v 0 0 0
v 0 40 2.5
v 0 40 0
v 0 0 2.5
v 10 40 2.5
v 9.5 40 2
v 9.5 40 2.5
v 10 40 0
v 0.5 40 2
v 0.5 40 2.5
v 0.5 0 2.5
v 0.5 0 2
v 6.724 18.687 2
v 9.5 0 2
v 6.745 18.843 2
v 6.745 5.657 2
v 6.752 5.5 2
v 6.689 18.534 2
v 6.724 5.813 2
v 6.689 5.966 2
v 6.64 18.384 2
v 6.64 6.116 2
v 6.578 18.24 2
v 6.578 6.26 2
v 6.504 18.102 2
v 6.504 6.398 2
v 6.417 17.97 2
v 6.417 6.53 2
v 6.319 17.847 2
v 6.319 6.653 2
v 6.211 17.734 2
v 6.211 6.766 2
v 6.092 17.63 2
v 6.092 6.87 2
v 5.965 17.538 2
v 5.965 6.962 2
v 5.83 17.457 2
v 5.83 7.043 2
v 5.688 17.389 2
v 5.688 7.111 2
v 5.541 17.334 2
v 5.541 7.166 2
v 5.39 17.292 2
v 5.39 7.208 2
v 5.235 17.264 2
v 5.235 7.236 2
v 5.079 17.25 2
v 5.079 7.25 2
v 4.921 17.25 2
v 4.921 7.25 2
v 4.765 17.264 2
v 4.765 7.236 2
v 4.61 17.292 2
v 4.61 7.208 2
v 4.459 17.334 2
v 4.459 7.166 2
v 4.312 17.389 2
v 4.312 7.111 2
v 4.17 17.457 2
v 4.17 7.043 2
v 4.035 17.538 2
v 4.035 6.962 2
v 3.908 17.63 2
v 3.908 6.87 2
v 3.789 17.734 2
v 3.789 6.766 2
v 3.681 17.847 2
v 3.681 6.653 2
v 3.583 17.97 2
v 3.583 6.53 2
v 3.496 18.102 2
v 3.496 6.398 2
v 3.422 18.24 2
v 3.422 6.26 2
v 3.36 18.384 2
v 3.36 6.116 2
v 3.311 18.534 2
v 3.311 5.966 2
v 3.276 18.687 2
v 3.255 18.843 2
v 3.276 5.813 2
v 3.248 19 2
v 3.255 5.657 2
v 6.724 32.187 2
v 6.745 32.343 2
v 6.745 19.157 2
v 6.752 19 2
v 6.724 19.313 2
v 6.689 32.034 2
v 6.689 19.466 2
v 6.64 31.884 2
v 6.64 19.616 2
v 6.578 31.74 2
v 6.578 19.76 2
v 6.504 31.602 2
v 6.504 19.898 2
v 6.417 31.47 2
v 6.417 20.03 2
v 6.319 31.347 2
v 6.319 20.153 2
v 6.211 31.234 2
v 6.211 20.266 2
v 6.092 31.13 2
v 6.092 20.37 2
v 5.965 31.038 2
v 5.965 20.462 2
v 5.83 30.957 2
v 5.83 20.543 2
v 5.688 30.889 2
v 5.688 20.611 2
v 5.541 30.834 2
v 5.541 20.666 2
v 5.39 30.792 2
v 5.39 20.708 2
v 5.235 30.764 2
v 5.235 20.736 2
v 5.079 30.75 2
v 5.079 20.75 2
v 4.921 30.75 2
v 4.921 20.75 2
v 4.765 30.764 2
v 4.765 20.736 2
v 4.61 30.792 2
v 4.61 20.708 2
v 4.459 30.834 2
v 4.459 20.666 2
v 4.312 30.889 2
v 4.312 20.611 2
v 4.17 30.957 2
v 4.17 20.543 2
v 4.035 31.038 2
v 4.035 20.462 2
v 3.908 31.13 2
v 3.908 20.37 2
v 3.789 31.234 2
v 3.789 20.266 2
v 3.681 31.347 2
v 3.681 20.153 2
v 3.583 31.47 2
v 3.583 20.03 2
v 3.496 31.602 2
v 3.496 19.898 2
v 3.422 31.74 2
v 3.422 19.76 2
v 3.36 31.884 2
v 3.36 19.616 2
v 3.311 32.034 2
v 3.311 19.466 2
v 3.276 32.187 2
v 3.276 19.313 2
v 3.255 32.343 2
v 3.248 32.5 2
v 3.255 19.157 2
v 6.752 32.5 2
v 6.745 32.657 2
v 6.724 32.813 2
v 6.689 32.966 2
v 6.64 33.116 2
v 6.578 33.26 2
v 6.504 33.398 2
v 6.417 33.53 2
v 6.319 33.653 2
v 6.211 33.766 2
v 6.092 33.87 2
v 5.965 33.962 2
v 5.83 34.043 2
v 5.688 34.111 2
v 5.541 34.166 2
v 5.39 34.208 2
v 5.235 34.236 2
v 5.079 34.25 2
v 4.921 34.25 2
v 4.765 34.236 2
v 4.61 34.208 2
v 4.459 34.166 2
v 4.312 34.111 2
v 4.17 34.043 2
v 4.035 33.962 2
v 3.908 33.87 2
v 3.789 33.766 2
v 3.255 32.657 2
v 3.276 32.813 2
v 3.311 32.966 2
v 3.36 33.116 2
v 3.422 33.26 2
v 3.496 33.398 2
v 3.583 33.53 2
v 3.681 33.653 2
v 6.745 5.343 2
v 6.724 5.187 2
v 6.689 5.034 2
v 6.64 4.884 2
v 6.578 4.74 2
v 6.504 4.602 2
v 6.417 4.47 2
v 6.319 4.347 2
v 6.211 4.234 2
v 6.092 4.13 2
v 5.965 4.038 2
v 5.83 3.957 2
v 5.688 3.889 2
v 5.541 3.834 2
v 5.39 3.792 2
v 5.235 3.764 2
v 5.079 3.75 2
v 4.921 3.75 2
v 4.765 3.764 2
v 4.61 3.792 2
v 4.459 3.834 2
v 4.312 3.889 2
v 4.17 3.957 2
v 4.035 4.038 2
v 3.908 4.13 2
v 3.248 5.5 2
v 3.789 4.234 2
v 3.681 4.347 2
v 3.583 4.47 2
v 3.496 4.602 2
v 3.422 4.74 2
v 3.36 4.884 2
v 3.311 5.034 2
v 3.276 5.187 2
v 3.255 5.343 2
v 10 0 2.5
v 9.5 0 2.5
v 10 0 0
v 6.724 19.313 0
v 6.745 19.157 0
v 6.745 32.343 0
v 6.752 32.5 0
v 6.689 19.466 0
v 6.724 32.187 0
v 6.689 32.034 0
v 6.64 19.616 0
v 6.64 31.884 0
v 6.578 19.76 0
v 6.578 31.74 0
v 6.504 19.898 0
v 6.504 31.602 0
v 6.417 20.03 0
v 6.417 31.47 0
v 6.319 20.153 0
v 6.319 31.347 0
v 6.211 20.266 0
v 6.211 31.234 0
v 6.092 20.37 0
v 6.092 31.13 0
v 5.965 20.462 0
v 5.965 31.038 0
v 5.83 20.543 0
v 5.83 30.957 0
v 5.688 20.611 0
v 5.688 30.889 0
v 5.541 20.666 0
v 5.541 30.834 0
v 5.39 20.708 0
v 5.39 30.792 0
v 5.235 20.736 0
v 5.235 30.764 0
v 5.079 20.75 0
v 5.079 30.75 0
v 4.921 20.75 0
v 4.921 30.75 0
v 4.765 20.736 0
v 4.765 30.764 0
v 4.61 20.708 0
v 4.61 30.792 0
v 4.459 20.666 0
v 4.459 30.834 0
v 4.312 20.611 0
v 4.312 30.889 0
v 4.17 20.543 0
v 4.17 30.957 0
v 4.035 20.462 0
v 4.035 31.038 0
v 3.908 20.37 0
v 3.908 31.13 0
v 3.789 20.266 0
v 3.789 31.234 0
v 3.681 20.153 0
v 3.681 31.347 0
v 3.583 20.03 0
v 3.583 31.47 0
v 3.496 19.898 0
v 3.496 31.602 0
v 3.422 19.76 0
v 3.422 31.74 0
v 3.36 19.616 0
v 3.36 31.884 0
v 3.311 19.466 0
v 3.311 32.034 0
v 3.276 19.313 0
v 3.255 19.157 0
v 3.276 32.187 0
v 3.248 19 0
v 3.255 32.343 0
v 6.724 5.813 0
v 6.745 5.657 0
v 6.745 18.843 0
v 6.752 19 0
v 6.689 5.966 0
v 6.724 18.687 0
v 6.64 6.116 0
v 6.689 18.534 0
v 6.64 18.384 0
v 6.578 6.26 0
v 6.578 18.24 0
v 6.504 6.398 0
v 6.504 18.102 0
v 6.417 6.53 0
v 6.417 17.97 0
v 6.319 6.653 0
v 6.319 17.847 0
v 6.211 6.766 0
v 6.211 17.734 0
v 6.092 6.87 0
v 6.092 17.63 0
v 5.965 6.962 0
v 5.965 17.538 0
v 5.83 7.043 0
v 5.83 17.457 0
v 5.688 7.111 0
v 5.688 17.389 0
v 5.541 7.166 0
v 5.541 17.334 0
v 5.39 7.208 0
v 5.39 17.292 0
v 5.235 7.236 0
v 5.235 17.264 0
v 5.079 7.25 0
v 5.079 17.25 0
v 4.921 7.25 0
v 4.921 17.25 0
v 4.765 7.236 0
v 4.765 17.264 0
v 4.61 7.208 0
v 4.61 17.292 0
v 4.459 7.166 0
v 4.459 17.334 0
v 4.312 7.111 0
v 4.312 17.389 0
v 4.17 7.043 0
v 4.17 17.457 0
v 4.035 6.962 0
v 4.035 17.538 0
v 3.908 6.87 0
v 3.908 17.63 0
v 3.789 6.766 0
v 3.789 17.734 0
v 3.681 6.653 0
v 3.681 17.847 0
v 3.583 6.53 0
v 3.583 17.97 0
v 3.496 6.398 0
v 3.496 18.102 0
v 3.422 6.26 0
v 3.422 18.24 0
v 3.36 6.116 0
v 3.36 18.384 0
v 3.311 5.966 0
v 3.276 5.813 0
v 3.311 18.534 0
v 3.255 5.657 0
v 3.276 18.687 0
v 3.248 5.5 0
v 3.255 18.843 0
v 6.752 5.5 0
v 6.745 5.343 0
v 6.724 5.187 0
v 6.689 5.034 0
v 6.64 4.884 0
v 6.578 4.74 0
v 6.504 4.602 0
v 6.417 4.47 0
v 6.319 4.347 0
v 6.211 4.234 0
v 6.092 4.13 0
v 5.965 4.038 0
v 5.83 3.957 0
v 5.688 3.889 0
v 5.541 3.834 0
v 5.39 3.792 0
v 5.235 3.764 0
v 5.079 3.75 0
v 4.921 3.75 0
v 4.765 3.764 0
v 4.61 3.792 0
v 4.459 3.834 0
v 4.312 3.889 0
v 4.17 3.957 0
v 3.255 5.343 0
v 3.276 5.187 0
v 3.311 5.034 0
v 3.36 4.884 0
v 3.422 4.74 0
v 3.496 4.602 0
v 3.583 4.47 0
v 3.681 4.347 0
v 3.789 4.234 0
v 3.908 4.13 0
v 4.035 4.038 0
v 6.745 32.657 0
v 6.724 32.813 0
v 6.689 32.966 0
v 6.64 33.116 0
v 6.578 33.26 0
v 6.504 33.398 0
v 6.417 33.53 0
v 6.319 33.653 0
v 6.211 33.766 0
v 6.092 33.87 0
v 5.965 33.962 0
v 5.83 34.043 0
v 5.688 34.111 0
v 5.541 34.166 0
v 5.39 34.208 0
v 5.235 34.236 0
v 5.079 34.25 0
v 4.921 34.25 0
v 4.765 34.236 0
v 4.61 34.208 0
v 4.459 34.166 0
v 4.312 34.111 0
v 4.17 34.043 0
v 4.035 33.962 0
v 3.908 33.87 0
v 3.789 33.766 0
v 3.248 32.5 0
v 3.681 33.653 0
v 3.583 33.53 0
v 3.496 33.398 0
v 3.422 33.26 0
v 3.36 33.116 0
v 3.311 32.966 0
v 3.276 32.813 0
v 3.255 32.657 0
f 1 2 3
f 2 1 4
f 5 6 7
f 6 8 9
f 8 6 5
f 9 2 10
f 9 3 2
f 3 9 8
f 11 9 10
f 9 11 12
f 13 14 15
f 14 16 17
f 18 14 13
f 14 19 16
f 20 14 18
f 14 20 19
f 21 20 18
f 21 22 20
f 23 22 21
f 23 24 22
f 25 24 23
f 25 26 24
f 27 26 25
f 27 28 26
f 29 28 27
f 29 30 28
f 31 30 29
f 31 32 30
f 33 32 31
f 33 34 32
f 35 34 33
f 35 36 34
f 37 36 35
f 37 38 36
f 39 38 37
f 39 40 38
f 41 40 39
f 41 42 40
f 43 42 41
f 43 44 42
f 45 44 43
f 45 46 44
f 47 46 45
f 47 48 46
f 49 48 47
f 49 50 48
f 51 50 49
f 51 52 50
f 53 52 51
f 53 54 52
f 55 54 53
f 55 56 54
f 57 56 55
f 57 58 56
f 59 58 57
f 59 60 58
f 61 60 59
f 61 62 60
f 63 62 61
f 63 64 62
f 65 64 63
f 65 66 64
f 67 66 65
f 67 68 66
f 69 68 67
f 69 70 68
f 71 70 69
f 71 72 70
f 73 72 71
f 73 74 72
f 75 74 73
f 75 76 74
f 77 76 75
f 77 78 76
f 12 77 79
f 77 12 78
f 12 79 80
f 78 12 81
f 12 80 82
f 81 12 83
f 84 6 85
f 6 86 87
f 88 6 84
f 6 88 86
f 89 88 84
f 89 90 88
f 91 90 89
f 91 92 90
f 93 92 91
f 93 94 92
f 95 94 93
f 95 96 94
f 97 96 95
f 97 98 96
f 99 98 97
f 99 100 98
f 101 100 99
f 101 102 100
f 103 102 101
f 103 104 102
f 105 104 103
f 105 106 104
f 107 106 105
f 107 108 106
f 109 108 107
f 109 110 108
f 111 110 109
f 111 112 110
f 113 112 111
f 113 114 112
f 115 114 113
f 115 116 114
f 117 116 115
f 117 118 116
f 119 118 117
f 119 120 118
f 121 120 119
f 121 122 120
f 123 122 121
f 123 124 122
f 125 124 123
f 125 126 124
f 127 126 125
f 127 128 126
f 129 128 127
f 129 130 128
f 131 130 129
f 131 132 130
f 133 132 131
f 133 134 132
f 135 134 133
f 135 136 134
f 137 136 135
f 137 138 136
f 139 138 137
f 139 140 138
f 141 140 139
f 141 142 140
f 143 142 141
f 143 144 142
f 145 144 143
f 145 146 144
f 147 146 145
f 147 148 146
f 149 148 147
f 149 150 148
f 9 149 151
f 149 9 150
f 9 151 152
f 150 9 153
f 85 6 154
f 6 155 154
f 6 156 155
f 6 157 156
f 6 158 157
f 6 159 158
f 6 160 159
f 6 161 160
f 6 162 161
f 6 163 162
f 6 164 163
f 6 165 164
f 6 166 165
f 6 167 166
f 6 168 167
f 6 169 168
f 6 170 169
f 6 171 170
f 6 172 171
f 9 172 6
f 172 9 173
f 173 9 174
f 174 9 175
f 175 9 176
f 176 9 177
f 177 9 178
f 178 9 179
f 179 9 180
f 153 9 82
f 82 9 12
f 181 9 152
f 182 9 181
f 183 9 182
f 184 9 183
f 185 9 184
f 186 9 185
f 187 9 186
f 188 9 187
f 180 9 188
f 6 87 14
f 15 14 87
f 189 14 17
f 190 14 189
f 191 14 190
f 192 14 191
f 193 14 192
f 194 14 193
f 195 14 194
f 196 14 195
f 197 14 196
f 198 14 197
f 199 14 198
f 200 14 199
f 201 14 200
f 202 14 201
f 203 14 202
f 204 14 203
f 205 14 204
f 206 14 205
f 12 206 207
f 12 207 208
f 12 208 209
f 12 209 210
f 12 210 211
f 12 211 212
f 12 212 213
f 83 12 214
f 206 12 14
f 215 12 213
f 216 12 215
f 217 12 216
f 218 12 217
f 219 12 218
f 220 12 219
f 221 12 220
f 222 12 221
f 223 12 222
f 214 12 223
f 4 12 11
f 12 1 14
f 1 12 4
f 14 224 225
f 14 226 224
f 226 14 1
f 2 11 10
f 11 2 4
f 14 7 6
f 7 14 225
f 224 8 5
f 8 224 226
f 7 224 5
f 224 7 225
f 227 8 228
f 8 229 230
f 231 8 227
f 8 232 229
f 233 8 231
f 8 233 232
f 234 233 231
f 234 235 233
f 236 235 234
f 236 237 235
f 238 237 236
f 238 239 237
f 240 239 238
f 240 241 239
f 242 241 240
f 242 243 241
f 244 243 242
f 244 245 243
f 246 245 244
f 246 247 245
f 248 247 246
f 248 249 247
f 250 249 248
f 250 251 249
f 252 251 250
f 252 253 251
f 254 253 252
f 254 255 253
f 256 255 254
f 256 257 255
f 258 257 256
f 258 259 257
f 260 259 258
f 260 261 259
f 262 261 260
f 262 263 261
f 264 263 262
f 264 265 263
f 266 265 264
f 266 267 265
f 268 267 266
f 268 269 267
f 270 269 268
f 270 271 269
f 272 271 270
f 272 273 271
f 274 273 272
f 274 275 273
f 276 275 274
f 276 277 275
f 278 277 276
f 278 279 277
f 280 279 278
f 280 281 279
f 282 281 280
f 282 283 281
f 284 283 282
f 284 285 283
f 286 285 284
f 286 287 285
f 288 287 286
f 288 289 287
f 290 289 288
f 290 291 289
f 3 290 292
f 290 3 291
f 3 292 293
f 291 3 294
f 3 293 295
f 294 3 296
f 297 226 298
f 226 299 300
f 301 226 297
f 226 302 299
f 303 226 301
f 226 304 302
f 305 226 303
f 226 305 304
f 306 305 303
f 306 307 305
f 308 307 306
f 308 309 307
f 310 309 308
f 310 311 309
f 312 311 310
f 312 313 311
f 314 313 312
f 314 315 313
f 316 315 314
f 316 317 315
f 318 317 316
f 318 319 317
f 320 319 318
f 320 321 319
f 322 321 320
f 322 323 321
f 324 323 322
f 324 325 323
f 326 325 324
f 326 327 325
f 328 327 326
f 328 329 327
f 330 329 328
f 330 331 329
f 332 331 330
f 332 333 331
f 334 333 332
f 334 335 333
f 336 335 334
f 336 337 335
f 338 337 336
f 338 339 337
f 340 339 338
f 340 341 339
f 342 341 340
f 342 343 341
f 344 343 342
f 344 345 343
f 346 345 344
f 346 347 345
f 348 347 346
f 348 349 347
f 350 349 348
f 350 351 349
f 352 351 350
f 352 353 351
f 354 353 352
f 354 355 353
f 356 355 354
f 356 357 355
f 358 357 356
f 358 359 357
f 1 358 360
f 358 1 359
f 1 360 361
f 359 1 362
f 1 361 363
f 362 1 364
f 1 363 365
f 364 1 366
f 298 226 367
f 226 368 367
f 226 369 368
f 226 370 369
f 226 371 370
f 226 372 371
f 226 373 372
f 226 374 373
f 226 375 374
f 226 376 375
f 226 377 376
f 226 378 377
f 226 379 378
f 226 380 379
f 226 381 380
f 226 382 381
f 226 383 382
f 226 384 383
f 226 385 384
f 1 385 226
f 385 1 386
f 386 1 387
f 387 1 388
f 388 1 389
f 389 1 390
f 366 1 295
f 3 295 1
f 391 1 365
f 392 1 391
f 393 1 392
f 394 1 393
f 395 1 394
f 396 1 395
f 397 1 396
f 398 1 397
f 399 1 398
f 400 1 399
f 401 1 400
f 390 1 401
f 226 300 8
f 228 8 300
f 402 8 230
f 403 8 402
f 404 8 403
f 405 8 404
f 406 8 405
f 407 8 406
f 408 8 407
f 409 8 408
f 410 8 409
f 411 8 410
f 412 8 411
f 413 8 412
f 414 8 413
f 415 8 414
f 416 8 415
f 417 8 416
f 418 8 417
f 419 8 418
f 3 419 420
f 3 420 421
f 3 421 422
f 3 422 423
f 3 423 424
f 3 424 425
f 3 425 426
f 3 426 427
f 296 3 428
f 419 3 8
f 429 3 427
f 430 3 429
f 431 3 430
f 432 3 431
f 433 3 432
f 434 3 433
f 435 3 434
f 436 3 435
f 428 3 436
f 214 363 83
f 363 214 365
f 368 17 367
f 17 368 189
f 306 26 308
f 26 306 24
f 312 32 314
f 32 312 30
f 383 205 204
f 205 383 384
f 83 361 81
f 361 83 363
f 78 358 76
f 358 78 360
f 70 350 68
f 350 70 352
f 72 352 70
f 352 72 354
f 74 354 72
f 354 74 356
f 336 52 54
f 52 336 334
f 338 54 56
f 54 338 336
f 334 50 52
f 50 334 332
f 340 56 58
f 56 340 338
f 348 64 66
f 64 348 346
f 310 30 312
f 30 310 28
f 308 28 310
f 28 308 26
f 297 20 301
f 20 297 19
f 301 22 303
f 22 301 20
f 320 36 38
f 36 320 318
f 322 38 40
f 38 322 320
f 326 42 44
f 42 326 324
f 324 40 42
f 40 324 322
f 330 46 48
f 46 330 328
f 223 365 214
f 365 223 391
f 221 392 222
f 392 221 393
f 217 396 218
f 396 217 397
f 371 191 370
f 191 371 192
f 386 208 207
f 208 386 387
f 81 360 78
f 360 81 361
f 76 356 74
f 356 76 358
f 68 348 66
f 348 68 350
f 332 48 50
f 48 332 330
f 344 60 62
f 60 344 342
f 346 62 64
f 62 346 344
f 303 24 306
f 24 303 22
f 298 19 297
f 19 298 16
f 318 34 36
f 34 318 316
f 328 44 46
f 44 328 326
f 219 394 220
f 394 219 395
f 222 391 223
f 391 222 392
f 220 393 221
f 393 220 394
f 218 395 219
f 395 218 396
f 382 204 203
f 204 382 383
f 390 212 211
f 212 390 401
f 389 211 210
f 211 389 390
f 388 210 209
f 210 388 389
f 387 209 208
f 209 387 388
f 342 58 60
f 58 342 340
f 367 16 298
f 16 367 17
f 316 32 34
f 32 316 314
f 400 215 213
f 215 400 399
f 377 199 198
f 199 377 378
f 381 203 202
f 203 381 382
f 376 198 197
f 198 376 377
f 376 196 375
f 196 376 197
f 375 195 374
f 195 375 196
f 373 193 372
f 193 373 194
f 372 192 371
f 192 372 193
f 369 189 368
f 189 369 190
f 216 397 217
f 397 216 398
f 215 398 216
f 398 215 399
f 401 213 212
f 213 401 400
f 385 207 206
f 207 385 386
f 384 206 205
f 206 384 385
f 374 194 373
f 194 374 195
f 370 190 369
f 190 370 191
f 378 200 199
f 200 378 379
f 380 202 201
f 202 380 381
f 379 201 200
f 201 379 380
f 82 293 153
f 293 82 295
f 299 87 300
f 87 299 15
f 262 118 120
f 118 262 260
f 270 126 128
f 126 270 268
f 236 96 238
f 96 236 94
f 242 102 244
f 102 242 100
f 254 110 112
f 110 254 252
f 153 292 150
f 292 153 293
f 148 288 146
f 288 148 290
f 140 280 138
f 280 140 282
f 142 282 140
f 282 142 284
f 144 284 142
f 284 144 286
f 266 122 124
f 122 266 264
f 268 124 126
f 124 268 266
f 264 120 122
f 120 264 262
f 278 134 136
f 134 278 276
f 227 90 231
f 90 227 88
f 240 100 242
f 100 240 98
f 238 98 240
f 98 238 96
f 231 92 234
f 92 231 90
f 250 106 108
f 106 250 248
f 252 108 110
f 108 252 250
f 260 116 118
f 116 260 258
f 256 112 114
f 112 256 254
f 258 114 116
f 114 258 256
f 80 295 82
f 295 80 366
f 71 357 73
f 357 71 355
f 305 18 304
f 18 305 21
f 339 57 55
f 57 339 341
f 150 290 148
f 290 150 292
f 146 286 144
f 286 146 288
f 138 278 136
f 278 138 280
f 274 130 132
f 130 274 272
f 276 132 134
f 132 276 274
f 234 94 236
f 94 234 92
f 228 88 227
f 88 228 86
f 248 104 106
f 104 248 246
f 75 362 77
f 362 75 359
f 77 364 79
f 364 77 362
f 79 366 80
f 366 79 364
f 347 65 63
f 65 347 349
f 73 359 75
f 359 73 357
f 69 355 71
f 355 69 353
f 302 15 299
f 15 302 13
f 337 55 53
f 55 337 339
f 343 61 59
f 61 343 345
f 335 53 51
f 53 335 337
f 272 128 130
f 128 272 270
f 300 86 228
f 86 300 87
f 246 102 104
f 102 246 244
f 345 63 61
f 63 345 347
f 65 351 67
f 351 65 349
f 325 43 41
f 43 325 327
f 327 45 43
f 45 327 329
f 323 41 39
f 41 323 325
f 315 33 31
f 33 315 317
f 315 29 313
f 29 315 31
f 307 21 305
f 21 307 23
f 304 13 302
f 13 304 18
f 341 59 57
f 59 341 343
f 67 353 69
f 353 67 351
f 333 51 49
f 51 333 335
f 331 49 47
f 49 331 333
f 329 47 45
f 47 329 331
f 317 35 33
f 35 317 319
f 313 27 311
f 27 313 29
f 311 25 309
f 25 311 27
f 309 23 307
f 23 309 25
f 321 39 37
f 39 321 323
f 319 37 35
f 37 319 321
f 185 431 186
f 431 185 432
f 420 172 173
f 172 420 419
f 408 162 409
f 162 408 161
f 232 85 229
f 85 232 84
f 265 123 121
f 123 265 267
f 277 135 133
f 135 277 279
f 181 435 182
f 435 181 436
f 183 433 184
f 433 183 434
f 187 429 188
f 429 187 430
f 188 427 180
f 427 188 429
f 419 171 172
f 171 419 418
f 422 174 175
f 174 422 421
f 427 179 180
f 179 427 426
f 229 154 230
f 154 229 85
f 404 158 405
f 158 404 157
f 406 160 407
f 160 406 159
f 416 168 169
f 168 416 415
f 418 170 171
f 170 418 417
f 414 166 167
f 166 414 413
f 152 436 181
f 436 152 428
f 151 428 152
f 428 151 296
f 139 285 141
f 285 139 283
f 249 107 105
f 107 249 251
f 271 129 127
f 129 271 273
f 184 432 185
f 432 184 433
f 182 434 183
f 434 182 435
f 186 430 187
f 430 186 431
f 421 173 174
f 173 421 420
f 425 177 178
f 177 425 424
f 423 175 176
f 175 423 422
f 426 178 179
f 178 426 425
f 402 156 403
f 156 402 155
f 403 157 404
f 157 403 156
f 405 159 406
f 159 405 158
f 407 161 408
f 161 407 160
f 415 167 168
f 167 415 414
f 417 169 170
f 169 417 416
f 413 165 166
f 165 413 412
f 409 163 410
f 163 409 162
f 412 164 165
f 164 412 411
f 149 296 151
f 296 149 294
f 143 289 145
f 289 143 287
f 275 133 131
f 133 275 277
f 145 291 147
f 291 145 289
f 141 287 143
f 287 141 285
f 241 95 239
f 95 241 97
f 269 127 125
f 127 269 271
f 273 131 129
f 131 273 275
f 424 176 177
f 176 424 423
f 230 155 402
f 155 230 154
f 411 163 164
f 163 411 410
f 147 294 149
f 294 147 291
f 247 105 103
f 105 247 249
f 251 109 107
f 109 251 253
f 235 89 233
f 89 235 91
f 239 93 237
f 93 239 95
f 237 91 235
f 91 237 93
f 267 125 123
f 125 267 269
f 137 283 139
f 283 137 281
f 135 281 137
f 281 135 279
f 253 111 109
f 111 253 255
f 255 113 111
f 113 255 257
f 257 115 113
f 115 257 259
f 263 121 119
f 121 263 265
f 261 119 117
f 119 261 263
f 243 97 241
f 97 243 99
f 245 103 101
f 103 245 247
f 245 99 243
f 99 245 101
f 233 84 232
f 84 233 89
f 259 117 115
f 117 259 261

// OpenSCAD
// file: ../parts/lmu10.scad
module lmu10(hollow = false)
{
    difference()
    {
        cylinder(d = 19, h = 29, $fn = 100);
        if (hollow == true)
        {
            cylinder(d = 10, h = 29, $fn = 100);
        }
    }
}
// file: ../parts/nema17MotorPlate.scad
nema17PlateWidth = 42.3;

module nema17MotorPlate(h = 2)
{
    difference()
    {
        cube([42.3, 42.3, h]);

        translate([42.3 / 2, 42.3 / 2, -.1])
            polyhole(d = 22.5, h = h + .2);
        
        o = (42.3 - 31) / 2;

        translate([o, o, -.1])
            hole3mm(h = h + .2);
        translate([o, 42.3 - o, -.1])
            hole3mm(h = h + .2);
        translate([42.3 - o, o, -.1])
            hole3mm(h = h + .2);            
        translate([42.3 - o, 42.3 - o, -.1])
            hole3mm(h = h + .2);
    }
}
// file: ../functions.scad
module polyhole(h, d)
{
    n = max(round(20 * d), 3);

    rotate([0,0,180])
    {
        cylinder(h = h, r = (d / 2) / cos (180 / n), $fn = n);
    }
}

module triangle(out, up, thick, center=false)
{
    centroid = center ? [-a_len/3, -o_len/3, -depth/2] : [0, 0, 0];
    rotate([0, -90, 0])
    translate(centroid) linear_extrude(height=thick)
    {
        polygon(points=[[0,0],[0,out],[up,0]], paths=[[0,1,2]]);
    }
}
// file: ../materials.scad
module extrusionVertical(x = 20, y = 20, l)
{
    difference()
    {
        cube([x, y, l]);

        translate([x-10 - 5/2, -.1, -.1])
            cube([5, 2, l+.2]);

        translate([x-10 - 5/2, y - 2, -.1])
            cube([5, 2.1, l+.2]);

        translate([x - 3, 10 - 5/2, -.1])
            cube([3.1, 5, l+.2]);

        translate([-0.1, 10-5/2, -.1])
            cube([3.1, 5, l+.2]);
    }
}

module extrusionHorizontalY(x = 20, y = 20, l)
{
    difference()
    {
        cube([x, l, y]);

        translate([x-10 - 5/2, .1, -.1])
            cube([5, l + .2, 2]);

        translate([x-10 - 5/2, -.1, y-2])
            cube([5, l + .2, 2.1]);

        translate([-.1, -.1, 10 - 5/2])
            cube([2.1, l + .2, 5]);
        translate([-.1, -.1, y - 10 - 5/2])
            cube([2.1, l + .2, 5]);

        translate([x - 3, -1, 10 - 5/2])
            cube([3.1, l + .2, 5]);
        translate([x - 3, -1, y - 10 - 5/2])
            cube([3.1, l + .2, 5]);
    }
}

module extrusionHorizontalX(x = 20, y = 20, l)
{
    difference()
    {
        cube([l, x, y]);

        translate([-.1,x-10 - 5/2, -.1])
            cube([l + .2, 5, 2]);

        translate([-.1, x-10 - 5/2, y-2])
            cube([l + .2, 5, 2.1]);

        translate([-.1, -.1, 10 - 5/2])
            cube([l + .2, 2.1, 5]);
        translate([-.1, -.1, y - 10 - 5/2])
            cube([l + .2, 2.1, 5]);

        translate([-.1, x - 3, 10 - 5/2])
             cube([l + .2, 3.1, 5]);
        translate([-.1, x - 3, y - 10 - 5/2])
             cube([l + .2, 3.1, 5]);
    }
}

module tenMMBar(l)
{
    cylinder(d = 10.5, h = l, $fn = 100);
}

module pomNutMount(h = 3.5)
{
    polyhole(d = 10.5, h = h);
    pomNutHoles(h = h);
}

module pomNutHoles(h) {
    translate([-7.75, 0, 0])
        hole3mm(h = h);
    translate([0, -7.75, 0])
        hole3mm(h = h);
    translate([7.75, 0, 0])
        hole3mm(h = h);
    translate([0, 7.75, 0])
        hole3mm(h = h);
}

module pomNut() {
    difference() {
        union() {
            polyhole(d = 10.5, h = 10.5);
            translate([0, 0, 1.5])
                polyhole(d = 22, h = 3.5);
        }

        translate([0, 0, -.1])
            polyhole(d = (10.5 - (1.8*2)), h = 10.7);

        translate([0, 0, 1.4]) {
            pomNutHoles(h = 3.7);
        }
    }
}

module bearings12mm()
{
    difference() {
        union() {
            polyhole(d = 15, h = 1.5);
            polyhole(d = 12, h = 10);
            translate([0,0,8.5])
                polyhole(d = 15, h = 1.5);
        }
        translate([0, 0, -.1])
            polyhole(d = 4, h = 10.2);
    }
}
// file: ../parts/x-carriage.scad
xCarriageBearingHeight = 80;
xCarriageBearingInset = 2.5;
xCarriageBearingDiameter = 19;
xCarriageBearingRadius = xCarriageBearingDiameter / 2;
xCarriageBearingClampBarrelThickness = 2;
xCarriageBearingClampBarrelWidth = 40;
xCarriageBearingClampDiameter = xCarriageBearingClampBarrelThickness * 2 + xCarriageBearingDiameter;
xCarriageBearingClampRadius = xCarriageBearingClampDiameter / 2;

module xCarriageBearingClampBarrel() {
    difference() {
        union() {
            translate([0, xCarriageBearingRadius - xCarriageBearingInset, xCarriageBearingClampRadius])
            rotate([90, 90, 90])
                difference() {
                    polyhole(d = xCarriageBearingClampDiameter, h = xCarriageBearingClampBarrelWidth);
                    
                    translate([0, 0, -.1])
                        polyhole(d = xCarriageBearingDiameter, h = xCarriageBearingClampBarrelWidth + .2);
                }
        }

        translate([-.1, -.1 - xCarriageBearingInset - xCarriageBearingClampBarrelThickness, -.1])
            cube([xCarriageBearingClampBarrelWidth + .2, xCarriageBearingClampRadius, xCarriageBearingClampDiameter + .2]);
    }

    cube([xCarriageBearingClampBarrelWidth, xCarriageBearingRadius - xCarriageBearingInset, xCarriageBearingClampBarrelThickness]);
    translate([0, 0, xCarriageBearingDiameter + xCarriageBearingClampBarrelThickness])
        cube([xCarriageBearingClampBarrelWidth, xCarriageBearingRadius - xCarriageBearingInset, xCarriageBearingClampBarrelThickness]);
}

module xCarriageBearingBeltClamp() {
    difference() {
            union() {
                cube([.5, .5, 40]);
                translate([9.5, 0, 0])
                    cube([.5, .5, 40]);
                translate([0, .5, 0])
                    cube([10, 2, 40]);
            }
        xCarriageBearingBeltClampHoles();
    }
}

module xCarriageBearingBeltClampHoles() {
    translate([5, 0, 5.5])
        rotate([-90,0,0])
            hole3mm(h = 100);
    translate([5, 0, 19])
        rotate([-90,0,0])
            hole3mm(h = 100);
    translate([5, 0, 32.5])
        rotate([-90,0,0])
            hole3mm(h = 100);
}

module xCarriageBearingClamp() {
    //clamp parts
    translate([0, 0, 20 - xCarriageBearingClampRadius]) 
        xCarriageBearingClampBarrel();
    translate([0, 0, 60 - xCarriageBearingClampRadius])
        xCarriageBearingClampBarrel();

    //brackets
    difference()
    {
        cube([xCarriageBearingClampBarrelWidth, xCarriageBearingClampBarrelThickness, 10]);
        translate([5, -.1, 5])
            rotate([-90,0,0])
                hole3mm(h = xCarriageBearingClampBarrelThickness + .2);
        translate([xCarriageBearingClampBarrelWidth / 2, -.1, 5])
            rotate([-90,0,0])
                hole3mm(h = xCarriageBearingClampBarrelThickness + .2);
        translate([xCarriageBearingClampBarrelWidth - 5, -.1, 5])
            rotate([-90,0,0])
                hole3mm(h = xCarriageBearingClampBarrelThickness + .2);
    }

    translate([0, 0, 70])
    difference()
    {
        cube([xCarriageBearingClampBarrelWidth, xCarriageBearingClampBarrelThickness, 10]);
        translate([5, -.1, 5])
            rotate([-90,0,0])
                hole3mm(h = xCarriageBearingClampBarrelThickness + .2);
        translate([xCarriageBearingClampBarrelWidth / 2, -.1, 5])
            rotate([-90,0,0])
                hole3mm(h = xCarriageBearingClampBarrelThickness + .2);
        translate([xCarriageBearingClampBarrelWidth - 5, -.1, 5])
            rotate([-90,0,0])
                hole3mm(h = xCarriageBearingClampBarrelThickness + .2);
    }

    h = 80 - xCarriageBearingDiameter * 2 - 21;
    translate([0, 0, 40 - h / 2])
    difference()
    {
        cube([xCarriageBearingClampBarrelWidth, xCarriageBearingClampBarrelThickness, h]);
        translate([5, -.1, h / 2])
            rotate([-90,0,0])
                hole3mm(h = xCarriageBearingClampBarrelThickness + .2);
        translate([xCarriageBearingClampBarrelWidth / 2, -.1, h / 2])
            rotate([-90,0,0])
                hole3mm(h = xCarriageBearingClampBarrelThickness + .2);
        translate([xCarriageBearingClampBarrelWidth - 5, -.1, h / 2])
            rotate([-90,0,0])
                hole3mm(h = xCarriageBearingClampBarrelThickness + .2);
    }

    // belt tensioning
    translate([0, xCarriageBearingDiameter - xCarriageBearingInset, 20]) {
        cube([40, 2, 40]);
        translate([0, 11, 7.5])
            difference() {
                union() {    
                    hull() {
                        rotate([0,90,0])
                            cylinder(d = 15, h = 10, $fn = 100);

                        translate([0, 0, 40 - 15])
                            rotate([0,90,0])
                                cylinder(d = 15, h = 10, $fn = 100);
                    }
                    translate([0, -9.5, -7.5])
                        cube([10, 10.5, 40]);
                }
                translate([-.1, 1, 2])
                    cube([10.2, 4, 7]);
                translate([-.1, 1, 15])
                    cube([10.2, 4, 7]);
            }

        translate([30, 0, 0])
            difference() {
                union()
                {
                    cube([10, 13.5, 40]);
                    translate([5, 13.5, 0])
                        cube([1, .5, 40]);
                }
                translate([-.1, 9, 3])
                    cube([10.2, 2.5, 5.5]);
                translate([-.1, 9, 16.5])
                    cube([10.2, 2.5, 5.5]);
                translate([-.1, 9, 30])
                    cube([10.2, 2.5, 5.5]);

                xCarriageBearingBeltClampHoles();
            }
    }
}

module xCarriageHoleCutout() {
    // top
    translate([5, 0, xCarriageBearingHeight - 5])
        rotate([-90, 0, 0])
            hole3mm(h = 20);
    translate([20, 0, xCarriageBearingHeight - 5])
        rotate([-90, 0, 0])
            hole3mm(h = 20);
    translate([35, 0, xCarriageBearingHeight - 5])
        rotate([-90, 0, 0])
            hole3mm(h = 20);

    //middle
    translate([5, 0, 40])
        rotate([-90, 0, 0])
            hole3mm(h = 20);
    translate([20, 0, 40])
        rotate([-90, 0, 0])
            hole3mm(h = 20);
    translate([35, 0, 40])
        rotate([-90, 0, 0])
            hole3mm(h = 20);

    //bottom
    translate([5, 0, 5])
        rotate([-90, 0, 0])
            hole3mm(h = 20);
    translate([20, 0, 5])
        rotate([-90, 0, 0])
            hole3mm(h = 20);
    translate([35, 0, 5])
        rotate([-90, 0, 0])
            hole3mm(h = 20);
}
// file: ../parts/railClamp.scad
// this is where the 10mm rods go into to be clamped down

module railClamp(l = 20, d = 10, h = 10)
{
    difference(){        
        union()
        {
            translate([-7, -7, 0])
                cube([14, 12 + h, l]);

            translate([0, 5 + h, 0])
                cylinder(d = 14, h = l + 0, $fn=100);
        }

        translate([0, h - 1, -1])
            tenMMBar(l = l + 2);
            
        translate([-1, h, -.1])
            cube([2, 14, l + .2]);
        
        // screw holes
        translate([-7, h + 8, 5])
            rotate([0, 90, 0])
                hole3mm(h = 100);
        translate([-7, h + 8, 15])
            rotate([0, 90, 0])
                hole3mm(h = 100);

        //screw insets
        translate([-8, h + 5, 2])
            cube([5, 6, 6]);
        translate([-8, h + 5, 15 - 3])
            cube([5, 6, 6]);

        translate([3, h + 5, 2])
            cube([5, 6, 6]);
        translate([3, h + 5, 15 - 3])
            cube([5, 6, 6]);
    }
}
// file: ../common.scad
include <materials.scad>
include <functions.scad>
include <parts/nema17MotorPlate.scad>
include <parts/lmu10.scad>

zGantryBracketX = 20;
lmu10Diameter = 20;
lmu10Length = 29;
xRailBracketSizeHeight = 72;
xRailBracketBackSize = 10;

module hole5mm(h = 2.2) {
    polyhole(d = 5.5, h = h);
}

module hole3mm(h = 2.2) {
    polyhole(d = 3.5, h = h);
}
// main file
include <../common.scad>
include <../parts/railClamp.scad>
include <../parts/x-carriage.scad>

echo("With Supports: no");

translate([0,0,2.5])
    rotate([-90,0,0])
        xCarriageBearingBeltClamp();
